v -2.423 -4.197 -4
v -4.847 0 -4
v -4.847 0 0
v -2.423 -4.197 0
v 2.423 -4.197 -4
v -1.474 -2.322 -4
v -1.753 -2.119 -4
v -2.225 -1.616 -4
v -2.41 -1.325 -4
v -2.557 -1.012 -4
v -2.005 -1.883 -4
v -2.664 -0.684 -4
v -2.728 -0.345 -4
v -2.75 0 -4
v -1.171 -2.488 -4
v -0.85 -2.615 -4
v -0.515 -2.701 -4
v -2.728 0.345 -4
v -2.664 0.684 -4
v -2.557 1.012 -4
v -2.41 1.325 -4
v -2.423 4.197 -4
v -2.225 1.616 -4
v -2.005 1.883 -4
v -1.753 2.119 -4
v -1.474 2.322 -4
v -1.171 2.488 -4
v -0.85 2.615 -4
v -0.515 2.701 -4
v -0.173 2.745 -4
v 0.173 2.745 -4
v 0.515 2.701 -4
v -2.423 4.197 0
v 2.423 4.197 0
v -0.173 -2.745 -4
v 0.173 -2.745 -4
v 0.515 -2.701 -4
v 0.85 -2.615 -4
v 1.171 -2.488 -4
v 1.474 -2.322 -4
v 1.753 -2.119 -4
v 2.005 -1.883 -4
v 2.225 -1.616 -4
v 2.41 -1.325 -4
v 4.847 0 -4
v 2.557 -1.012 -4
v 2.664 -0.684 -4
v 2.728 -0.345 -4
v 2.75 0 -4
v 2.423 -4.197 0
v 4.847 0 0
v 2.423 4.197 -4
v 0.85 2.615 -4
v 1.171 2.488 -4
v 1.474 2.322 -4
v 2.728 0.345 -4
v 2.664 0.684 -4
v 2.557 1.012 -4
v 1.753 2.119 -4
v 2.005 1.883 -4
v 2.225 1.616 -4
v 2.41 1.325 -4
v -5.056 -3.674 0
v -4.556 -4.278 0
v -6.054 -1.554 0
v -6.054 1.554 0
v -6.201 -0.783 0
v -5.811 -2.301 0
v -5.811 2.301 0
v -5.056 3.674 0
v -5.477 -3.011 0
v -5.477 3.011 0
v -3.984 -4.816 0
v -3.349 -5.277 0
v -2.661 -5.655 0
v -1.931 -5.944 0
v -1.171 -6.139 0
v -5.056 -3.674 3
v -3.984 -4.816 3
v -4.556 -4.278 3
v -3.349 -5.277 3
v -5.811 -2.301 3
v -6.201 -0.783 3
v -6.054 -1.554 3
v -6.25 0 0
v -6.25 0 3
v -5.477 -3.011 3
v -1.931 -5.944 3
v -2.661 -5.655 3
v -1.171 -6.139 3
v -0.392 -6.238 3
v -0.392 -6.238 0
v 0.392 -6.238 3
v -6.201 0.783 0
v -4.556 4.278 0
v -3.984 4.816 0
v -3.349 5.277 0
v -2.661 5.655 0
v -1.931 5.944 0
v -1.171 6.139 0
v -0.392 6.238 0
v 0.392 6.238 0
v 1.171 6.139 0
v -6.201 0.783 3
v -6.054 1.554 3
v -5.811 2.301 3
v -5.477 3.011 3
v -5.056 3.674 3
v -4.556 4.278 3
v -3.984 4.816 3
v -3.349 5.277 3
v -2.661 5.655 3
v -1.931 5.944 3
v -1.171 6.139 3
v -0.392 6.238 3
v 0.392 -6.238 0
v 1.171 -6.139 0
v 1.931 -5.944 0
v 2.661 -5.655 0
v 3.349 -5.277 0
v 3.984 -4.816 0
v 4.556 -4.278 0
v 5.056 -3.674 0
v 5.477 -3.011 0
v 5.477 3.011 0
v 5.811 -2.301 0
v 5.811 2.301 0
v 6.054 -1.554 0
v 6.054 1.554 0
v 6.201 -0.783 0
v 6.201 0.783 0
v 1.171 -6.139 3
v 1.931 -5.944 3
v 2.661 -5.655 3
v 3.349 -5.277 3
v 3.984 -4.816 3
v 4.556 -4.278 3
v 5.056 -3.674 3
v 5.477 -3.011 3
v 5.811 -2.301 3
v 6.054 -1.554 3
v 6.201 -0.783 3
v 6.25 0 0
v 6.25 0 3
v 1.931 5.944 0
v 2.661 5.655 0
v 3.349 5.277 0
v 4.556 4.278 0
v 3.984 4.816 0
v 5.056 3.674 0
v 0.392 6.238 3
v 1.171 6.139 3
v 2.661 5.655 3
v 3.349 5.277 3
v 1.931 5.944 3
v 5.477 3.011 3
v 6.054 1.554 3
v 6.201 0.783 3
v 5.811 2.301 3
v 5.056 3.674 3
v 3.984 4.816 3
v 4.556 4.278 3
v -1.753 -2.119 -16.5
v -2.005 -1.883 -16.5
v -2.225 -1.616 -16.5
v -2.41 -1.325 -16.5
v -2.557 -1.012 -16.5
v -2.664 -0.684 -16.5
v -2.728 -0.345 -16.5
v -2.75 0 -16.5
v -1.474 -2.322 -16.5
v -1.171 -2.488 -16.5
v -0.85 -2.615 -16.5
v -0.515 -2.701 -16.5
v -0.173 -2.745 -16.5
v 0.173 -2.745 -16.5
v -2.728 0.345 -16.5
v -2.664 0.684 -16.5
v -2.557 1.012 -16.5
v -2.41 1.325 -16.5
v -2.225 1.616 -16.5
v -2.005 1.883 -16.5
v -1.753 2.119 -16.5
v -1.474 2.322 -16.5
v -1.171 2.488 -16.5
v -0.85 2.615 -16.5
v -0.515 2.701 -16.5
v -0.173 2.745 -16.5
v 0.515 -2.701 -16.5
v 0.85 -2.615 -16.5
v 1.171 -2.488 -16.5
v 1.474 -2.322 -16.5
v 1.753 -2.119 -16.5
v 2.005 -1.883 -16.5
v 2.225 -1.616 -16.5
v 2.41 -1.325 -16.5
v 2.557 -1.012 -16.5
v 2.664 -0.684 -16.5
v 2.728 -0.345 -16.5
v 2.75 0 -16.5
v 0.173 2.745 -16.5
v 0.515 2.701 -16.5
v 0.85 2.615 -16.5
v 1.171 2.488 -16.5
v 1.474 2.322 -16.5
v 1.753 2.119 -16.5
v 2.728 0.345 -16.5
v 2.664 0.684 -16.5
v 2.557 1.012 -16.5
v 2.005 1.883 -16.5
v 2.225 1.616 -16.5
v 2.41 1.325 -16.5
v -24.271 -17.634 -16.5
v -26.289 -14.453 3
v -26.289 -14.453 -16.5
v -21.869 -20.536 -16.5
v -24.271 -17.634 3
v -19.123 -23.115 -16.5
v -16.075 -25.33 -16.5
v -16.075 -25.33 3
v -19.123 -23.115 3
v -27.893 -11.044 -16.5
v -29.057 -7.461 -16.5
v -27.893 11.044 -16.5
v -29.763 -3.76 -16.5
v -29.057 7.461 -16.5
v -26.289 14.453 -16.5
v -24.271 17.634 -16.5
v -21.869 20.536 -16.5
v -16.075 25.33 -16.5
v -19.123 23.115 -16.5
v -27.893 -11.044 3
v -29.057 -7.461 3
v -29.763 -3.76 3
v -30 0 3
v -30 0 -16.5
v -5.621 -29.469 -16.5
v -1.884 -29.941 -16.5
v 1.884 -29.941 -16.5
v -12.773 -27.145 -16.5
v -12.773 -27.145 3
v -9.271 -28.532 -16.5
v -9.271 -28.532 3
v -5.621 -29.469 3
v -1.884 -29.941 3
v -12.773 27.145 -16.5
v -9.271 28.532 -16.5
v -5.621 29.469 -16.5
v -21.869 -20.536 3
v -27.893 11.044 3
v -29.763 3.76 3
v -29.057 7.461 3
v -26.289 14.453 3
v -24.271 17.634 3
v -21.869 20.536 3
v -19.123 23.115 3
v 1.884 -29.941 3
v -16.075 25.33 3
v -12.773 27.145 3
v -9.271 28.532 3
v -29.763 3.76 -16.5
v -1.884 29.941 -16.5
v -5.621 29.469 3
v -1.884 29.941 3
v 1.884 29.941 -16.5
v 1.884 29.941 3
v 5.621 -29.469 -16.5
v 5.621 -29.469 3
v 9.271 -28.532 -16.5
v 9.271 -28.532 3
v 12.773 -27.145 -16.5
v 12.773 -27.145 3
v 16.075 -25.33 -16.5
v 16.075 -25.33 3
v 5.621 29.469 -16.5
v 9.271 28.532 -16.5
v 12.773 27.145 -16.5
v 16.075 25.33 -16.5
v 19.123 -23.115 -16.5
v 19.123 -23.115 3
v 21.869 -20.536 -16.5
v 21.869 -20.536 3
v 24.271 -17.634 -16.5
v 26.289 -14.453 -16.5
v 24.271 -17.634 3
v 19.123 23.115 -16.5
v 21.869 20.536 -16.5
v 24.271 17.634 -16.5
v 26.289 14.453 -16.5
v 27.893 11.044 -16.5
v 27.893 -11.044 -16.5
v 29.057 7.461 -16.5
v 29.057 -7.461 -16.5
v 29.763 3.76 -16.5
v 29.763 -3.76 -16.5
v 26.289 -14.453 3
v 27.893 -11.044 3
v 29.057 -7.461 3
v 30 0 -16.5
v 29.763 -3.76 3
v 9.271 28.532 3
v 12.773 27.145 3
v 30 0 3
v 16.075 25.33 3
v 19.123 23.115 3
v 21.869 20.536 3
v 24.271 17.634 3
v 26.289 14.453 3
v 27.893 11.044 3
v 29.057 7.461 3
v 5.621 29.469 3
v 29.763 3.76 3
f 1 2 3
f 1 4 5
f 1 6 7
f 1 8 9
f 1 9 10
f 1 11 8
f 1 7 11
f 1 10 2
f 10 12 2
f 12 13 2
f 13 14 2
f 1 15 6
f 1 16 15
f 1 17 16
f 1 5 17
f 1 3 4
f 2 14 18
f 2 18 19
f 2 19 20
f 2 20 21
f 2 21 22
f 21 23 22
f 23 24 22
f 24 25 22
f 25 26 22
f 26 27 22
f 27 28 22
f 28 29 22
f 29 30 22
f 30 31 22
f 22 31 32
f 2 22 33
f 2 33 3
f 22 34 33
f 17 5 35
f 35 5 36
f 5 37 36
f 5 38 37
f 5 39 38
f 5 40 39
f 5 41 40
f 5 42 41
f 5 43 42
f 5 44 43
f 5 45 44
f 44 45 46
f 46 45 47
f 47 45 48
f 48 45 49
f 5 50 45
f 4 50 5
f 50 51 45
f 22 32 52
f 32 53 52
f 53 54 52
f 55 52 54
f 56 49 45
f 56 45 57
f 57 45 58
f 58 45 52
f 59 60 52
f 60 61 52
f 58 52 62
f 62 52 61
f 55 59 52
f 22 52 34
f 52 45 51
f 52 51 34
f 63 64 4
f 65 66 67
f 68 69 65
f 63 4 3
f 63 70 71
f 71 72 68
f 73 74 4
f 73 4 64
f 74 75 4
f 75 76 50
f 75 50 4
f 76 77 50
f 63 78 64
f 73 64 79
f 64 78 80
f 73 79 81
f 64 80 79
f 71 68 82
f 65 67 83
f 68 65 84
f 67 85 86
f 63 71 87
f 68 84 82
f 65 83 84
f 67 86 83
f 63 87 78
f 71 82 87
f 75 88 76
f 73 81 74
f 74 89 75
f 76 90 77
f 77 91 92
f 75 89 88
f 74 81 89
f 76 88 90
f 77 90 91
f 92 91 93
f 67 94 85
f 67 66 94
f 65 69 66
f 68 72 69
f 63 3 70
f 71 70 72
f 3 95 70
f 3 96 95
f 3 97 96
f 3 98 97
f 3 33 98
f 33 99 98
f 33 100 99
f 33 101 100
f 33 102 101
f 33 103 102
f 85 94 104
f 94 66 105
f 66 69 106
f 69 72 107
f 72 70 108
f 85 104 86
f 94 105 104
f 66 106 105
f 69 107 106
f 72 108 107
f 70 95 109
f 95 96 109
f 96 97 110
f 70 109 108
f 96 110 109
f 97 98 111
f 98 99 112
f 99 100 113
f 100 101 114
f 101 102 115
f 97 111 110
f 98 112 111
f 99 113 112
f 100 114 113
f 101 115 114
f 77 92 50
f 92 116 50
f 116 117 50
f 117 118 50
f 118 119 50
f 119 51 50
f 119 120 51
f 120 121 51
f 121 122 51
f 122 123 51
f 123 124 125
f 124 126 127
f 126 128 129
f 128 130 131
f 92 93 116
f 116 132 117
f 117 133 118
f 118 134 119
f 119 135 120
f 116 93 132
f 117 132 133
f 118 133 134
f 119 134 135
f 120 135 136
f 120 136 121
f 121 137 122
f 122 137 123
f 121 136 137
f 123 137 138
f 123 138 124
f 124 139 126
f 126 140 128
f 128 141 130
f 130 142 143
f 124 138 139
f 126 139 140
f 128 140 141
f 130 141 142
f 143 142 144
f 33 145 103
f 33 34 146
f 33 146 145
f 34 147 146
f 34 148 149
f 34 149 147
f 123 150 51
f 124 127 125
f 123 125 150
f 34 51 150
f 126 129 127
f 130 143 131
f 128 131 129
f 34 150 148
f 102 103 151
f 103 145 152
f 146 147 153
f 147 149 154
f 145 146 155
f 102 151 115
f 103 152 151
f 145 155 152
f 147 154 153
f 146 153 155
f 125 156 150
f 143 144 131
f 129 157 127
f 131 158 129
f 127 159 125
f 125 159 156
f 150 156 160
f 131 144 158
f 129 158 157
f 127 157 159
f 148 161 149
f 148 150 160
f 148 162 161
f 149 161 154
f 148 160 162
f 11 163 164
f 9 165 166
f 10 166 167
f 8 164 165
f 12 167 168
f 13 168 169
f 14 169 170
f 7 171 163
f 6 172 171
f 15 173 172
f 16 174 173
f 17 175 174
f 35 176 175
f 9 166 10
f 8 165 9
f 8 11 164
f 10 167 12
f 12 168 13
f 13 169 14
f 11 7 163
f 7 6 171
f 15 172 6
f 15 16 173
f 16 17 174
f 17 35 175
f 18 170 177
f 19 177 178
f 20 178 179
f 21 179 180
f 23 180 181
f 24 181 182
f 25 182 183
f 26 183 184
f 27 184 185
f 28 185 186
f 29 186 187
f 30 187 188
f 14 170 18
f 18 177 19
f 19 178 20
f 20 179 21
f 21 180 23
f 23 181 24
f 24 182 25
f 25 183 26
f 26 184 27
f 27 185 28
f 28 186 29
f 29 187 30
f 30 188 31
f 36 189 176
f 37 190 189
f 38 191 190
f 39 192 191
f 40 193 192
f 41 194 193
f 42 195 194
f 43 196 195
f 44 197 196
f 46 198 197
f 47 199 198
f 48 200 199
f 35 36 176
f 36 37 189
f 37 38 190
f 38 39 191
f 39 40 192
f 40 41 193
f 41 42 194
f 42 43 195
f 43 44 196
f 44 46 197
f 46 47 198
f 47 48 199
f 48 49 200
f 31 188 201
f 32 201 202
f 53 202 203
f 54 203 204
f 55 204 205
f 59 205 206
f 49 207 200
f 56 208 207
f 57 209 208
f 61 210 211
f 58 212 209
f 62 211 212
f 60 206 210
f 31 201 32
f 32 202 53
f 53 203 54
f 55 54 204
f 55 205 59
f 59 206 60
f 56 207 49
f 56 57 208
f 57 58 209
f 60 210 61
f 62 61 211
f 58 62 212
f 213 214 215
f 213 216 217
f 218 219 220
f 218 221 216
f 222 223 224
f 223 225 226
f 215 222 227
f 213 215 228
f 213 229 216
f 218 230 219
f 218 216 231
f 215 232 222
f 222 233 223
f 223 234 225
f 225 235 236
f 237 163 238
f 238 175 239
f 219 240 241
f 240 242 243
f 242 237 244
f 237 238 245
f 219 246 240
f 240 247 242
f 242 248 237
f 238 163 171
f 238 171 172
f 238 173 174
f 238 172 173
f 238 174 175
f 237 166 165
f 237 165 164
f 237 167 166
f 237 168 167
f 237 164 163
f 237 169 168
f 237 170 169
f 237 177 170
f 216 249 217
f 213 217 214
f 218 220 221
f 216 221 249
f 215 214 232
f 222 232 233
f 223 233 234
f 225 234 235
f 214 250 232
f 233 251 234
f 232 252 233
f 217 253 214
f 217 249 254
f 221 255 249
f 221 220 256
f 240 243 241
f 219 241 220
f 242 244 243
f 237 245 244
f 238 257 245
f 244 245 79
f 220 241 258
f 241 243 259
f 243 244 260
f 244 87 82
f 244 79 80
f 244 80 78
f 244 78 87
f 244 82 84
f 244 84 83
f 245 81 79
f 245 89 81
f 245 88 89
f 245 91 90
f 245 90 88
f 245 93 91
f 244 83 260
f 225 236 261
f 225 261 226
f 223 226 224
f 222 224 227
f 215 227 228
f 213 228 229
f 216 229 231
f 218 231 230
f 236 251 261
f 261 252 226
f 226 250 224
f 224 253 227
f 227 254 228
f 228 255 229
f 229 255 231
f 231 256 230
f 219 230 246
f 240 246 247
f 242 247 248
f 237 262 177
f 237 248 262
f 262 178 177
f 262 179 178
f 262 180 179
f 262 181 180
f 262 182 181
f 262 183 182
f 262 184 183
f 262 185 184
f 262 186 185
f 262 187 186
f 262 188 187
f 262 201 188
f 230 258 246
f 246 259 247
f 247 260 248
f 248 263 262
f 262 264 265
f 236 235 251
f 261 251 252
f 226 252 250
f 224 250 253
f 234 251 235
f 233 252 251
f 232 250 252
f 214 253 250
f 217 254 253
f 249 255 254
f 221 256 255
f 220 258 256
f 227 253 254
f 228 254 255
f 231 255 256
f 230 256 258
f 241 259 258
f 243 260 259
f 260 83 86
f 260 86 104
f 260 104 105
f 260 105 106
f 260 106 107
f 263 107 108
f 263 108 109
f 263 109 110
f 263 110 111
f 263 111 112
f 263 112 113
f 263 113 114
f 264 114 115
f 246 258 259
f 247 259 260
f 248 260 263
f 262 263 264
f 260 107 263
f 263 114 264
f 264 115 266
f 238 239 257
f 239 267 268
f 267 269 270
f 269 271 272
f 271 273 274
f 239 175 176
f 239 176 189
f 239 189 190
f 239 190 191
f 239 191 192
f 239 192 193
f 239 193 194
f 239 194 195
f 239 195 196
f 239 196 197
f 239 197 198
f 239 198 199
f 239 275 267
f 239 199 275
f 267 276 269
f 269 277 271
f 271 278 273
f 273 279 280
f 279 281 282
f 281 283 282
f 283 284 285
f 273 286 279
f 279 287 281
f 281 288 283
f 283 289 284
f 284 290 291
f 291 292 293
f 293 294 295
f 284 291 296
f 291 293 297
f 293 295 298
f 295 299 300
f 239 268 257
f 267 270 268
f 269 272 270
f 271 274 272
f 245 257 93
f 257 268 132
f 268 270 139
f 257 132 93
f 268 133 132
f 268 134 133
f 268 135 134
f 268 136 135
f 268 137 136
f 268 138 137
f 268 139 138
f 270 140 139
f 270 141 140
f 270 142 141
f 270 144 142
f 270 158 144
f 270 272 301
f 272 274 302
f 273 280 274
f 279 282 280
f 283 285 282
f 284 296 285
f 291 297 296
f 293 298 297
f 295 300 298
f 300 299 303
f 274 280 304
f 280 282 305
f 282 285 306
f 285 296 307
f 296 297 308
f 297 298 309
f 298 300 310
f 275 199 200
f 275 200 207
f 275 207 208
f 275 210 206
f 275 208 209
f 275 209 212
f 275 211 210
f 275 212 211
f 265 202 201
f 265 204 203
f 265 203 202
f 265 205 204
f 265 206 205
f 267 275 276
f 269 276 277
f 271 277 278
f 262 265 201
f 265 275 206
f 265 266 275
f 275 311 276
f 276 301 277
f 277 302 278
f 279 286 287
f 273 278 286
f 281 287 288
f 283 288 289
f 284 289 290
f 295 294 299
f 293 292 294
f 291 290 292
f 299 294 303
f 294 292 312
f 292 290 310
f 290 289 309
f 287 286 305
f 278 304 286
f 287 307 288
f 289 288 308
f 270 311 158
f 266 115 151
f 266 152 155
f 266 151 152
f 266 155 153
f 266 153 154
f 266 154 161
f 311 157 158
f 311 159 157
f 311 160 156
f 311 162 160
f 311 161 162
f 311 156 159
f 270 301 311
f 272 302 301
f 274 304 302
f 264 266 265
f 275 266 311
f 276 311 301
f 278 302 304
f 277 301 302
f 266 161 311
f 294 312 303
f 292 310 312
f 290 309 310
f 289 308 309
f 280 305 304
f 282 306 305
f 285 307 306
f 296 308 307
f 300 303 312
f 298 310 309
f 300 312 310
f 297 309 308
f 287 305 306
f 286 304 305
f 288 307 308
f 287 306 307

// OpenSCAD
$fn = 50;


difference() {
	union() {
		translate(v = [0, 0, -16.5000000000]) {
			cylinder(h = 19.5000000000, r = 30.0000000000);
		}
	}
	union() {
		translate(v = [0, 0, 0]) {
			rotate(a = [0, 0, 0]) {
				difference() {
					union() {
						translate(v = [0, 0, -4]) {
							linear_extrude(height = 4) {
								polygon(points = [[4.8468000000, 0.0000000000], [2.4234000000, 4.1974519271], [-2.4234000000, 4.1974519271], [-4.8468000000, 0.0000000000], [-2.4234000000, -4.1974519271], [2.4234000000, -4.1974519271]]);
							}
						}
					}
					union();
				}
			}
		}
		#cylinder(h = 3, r = 6.2500000000);
		#translate(v = [0, 0, -100.0000000000]) {
			cylinder(h = 200, r = 2.7500000000);
		}
	}
}
